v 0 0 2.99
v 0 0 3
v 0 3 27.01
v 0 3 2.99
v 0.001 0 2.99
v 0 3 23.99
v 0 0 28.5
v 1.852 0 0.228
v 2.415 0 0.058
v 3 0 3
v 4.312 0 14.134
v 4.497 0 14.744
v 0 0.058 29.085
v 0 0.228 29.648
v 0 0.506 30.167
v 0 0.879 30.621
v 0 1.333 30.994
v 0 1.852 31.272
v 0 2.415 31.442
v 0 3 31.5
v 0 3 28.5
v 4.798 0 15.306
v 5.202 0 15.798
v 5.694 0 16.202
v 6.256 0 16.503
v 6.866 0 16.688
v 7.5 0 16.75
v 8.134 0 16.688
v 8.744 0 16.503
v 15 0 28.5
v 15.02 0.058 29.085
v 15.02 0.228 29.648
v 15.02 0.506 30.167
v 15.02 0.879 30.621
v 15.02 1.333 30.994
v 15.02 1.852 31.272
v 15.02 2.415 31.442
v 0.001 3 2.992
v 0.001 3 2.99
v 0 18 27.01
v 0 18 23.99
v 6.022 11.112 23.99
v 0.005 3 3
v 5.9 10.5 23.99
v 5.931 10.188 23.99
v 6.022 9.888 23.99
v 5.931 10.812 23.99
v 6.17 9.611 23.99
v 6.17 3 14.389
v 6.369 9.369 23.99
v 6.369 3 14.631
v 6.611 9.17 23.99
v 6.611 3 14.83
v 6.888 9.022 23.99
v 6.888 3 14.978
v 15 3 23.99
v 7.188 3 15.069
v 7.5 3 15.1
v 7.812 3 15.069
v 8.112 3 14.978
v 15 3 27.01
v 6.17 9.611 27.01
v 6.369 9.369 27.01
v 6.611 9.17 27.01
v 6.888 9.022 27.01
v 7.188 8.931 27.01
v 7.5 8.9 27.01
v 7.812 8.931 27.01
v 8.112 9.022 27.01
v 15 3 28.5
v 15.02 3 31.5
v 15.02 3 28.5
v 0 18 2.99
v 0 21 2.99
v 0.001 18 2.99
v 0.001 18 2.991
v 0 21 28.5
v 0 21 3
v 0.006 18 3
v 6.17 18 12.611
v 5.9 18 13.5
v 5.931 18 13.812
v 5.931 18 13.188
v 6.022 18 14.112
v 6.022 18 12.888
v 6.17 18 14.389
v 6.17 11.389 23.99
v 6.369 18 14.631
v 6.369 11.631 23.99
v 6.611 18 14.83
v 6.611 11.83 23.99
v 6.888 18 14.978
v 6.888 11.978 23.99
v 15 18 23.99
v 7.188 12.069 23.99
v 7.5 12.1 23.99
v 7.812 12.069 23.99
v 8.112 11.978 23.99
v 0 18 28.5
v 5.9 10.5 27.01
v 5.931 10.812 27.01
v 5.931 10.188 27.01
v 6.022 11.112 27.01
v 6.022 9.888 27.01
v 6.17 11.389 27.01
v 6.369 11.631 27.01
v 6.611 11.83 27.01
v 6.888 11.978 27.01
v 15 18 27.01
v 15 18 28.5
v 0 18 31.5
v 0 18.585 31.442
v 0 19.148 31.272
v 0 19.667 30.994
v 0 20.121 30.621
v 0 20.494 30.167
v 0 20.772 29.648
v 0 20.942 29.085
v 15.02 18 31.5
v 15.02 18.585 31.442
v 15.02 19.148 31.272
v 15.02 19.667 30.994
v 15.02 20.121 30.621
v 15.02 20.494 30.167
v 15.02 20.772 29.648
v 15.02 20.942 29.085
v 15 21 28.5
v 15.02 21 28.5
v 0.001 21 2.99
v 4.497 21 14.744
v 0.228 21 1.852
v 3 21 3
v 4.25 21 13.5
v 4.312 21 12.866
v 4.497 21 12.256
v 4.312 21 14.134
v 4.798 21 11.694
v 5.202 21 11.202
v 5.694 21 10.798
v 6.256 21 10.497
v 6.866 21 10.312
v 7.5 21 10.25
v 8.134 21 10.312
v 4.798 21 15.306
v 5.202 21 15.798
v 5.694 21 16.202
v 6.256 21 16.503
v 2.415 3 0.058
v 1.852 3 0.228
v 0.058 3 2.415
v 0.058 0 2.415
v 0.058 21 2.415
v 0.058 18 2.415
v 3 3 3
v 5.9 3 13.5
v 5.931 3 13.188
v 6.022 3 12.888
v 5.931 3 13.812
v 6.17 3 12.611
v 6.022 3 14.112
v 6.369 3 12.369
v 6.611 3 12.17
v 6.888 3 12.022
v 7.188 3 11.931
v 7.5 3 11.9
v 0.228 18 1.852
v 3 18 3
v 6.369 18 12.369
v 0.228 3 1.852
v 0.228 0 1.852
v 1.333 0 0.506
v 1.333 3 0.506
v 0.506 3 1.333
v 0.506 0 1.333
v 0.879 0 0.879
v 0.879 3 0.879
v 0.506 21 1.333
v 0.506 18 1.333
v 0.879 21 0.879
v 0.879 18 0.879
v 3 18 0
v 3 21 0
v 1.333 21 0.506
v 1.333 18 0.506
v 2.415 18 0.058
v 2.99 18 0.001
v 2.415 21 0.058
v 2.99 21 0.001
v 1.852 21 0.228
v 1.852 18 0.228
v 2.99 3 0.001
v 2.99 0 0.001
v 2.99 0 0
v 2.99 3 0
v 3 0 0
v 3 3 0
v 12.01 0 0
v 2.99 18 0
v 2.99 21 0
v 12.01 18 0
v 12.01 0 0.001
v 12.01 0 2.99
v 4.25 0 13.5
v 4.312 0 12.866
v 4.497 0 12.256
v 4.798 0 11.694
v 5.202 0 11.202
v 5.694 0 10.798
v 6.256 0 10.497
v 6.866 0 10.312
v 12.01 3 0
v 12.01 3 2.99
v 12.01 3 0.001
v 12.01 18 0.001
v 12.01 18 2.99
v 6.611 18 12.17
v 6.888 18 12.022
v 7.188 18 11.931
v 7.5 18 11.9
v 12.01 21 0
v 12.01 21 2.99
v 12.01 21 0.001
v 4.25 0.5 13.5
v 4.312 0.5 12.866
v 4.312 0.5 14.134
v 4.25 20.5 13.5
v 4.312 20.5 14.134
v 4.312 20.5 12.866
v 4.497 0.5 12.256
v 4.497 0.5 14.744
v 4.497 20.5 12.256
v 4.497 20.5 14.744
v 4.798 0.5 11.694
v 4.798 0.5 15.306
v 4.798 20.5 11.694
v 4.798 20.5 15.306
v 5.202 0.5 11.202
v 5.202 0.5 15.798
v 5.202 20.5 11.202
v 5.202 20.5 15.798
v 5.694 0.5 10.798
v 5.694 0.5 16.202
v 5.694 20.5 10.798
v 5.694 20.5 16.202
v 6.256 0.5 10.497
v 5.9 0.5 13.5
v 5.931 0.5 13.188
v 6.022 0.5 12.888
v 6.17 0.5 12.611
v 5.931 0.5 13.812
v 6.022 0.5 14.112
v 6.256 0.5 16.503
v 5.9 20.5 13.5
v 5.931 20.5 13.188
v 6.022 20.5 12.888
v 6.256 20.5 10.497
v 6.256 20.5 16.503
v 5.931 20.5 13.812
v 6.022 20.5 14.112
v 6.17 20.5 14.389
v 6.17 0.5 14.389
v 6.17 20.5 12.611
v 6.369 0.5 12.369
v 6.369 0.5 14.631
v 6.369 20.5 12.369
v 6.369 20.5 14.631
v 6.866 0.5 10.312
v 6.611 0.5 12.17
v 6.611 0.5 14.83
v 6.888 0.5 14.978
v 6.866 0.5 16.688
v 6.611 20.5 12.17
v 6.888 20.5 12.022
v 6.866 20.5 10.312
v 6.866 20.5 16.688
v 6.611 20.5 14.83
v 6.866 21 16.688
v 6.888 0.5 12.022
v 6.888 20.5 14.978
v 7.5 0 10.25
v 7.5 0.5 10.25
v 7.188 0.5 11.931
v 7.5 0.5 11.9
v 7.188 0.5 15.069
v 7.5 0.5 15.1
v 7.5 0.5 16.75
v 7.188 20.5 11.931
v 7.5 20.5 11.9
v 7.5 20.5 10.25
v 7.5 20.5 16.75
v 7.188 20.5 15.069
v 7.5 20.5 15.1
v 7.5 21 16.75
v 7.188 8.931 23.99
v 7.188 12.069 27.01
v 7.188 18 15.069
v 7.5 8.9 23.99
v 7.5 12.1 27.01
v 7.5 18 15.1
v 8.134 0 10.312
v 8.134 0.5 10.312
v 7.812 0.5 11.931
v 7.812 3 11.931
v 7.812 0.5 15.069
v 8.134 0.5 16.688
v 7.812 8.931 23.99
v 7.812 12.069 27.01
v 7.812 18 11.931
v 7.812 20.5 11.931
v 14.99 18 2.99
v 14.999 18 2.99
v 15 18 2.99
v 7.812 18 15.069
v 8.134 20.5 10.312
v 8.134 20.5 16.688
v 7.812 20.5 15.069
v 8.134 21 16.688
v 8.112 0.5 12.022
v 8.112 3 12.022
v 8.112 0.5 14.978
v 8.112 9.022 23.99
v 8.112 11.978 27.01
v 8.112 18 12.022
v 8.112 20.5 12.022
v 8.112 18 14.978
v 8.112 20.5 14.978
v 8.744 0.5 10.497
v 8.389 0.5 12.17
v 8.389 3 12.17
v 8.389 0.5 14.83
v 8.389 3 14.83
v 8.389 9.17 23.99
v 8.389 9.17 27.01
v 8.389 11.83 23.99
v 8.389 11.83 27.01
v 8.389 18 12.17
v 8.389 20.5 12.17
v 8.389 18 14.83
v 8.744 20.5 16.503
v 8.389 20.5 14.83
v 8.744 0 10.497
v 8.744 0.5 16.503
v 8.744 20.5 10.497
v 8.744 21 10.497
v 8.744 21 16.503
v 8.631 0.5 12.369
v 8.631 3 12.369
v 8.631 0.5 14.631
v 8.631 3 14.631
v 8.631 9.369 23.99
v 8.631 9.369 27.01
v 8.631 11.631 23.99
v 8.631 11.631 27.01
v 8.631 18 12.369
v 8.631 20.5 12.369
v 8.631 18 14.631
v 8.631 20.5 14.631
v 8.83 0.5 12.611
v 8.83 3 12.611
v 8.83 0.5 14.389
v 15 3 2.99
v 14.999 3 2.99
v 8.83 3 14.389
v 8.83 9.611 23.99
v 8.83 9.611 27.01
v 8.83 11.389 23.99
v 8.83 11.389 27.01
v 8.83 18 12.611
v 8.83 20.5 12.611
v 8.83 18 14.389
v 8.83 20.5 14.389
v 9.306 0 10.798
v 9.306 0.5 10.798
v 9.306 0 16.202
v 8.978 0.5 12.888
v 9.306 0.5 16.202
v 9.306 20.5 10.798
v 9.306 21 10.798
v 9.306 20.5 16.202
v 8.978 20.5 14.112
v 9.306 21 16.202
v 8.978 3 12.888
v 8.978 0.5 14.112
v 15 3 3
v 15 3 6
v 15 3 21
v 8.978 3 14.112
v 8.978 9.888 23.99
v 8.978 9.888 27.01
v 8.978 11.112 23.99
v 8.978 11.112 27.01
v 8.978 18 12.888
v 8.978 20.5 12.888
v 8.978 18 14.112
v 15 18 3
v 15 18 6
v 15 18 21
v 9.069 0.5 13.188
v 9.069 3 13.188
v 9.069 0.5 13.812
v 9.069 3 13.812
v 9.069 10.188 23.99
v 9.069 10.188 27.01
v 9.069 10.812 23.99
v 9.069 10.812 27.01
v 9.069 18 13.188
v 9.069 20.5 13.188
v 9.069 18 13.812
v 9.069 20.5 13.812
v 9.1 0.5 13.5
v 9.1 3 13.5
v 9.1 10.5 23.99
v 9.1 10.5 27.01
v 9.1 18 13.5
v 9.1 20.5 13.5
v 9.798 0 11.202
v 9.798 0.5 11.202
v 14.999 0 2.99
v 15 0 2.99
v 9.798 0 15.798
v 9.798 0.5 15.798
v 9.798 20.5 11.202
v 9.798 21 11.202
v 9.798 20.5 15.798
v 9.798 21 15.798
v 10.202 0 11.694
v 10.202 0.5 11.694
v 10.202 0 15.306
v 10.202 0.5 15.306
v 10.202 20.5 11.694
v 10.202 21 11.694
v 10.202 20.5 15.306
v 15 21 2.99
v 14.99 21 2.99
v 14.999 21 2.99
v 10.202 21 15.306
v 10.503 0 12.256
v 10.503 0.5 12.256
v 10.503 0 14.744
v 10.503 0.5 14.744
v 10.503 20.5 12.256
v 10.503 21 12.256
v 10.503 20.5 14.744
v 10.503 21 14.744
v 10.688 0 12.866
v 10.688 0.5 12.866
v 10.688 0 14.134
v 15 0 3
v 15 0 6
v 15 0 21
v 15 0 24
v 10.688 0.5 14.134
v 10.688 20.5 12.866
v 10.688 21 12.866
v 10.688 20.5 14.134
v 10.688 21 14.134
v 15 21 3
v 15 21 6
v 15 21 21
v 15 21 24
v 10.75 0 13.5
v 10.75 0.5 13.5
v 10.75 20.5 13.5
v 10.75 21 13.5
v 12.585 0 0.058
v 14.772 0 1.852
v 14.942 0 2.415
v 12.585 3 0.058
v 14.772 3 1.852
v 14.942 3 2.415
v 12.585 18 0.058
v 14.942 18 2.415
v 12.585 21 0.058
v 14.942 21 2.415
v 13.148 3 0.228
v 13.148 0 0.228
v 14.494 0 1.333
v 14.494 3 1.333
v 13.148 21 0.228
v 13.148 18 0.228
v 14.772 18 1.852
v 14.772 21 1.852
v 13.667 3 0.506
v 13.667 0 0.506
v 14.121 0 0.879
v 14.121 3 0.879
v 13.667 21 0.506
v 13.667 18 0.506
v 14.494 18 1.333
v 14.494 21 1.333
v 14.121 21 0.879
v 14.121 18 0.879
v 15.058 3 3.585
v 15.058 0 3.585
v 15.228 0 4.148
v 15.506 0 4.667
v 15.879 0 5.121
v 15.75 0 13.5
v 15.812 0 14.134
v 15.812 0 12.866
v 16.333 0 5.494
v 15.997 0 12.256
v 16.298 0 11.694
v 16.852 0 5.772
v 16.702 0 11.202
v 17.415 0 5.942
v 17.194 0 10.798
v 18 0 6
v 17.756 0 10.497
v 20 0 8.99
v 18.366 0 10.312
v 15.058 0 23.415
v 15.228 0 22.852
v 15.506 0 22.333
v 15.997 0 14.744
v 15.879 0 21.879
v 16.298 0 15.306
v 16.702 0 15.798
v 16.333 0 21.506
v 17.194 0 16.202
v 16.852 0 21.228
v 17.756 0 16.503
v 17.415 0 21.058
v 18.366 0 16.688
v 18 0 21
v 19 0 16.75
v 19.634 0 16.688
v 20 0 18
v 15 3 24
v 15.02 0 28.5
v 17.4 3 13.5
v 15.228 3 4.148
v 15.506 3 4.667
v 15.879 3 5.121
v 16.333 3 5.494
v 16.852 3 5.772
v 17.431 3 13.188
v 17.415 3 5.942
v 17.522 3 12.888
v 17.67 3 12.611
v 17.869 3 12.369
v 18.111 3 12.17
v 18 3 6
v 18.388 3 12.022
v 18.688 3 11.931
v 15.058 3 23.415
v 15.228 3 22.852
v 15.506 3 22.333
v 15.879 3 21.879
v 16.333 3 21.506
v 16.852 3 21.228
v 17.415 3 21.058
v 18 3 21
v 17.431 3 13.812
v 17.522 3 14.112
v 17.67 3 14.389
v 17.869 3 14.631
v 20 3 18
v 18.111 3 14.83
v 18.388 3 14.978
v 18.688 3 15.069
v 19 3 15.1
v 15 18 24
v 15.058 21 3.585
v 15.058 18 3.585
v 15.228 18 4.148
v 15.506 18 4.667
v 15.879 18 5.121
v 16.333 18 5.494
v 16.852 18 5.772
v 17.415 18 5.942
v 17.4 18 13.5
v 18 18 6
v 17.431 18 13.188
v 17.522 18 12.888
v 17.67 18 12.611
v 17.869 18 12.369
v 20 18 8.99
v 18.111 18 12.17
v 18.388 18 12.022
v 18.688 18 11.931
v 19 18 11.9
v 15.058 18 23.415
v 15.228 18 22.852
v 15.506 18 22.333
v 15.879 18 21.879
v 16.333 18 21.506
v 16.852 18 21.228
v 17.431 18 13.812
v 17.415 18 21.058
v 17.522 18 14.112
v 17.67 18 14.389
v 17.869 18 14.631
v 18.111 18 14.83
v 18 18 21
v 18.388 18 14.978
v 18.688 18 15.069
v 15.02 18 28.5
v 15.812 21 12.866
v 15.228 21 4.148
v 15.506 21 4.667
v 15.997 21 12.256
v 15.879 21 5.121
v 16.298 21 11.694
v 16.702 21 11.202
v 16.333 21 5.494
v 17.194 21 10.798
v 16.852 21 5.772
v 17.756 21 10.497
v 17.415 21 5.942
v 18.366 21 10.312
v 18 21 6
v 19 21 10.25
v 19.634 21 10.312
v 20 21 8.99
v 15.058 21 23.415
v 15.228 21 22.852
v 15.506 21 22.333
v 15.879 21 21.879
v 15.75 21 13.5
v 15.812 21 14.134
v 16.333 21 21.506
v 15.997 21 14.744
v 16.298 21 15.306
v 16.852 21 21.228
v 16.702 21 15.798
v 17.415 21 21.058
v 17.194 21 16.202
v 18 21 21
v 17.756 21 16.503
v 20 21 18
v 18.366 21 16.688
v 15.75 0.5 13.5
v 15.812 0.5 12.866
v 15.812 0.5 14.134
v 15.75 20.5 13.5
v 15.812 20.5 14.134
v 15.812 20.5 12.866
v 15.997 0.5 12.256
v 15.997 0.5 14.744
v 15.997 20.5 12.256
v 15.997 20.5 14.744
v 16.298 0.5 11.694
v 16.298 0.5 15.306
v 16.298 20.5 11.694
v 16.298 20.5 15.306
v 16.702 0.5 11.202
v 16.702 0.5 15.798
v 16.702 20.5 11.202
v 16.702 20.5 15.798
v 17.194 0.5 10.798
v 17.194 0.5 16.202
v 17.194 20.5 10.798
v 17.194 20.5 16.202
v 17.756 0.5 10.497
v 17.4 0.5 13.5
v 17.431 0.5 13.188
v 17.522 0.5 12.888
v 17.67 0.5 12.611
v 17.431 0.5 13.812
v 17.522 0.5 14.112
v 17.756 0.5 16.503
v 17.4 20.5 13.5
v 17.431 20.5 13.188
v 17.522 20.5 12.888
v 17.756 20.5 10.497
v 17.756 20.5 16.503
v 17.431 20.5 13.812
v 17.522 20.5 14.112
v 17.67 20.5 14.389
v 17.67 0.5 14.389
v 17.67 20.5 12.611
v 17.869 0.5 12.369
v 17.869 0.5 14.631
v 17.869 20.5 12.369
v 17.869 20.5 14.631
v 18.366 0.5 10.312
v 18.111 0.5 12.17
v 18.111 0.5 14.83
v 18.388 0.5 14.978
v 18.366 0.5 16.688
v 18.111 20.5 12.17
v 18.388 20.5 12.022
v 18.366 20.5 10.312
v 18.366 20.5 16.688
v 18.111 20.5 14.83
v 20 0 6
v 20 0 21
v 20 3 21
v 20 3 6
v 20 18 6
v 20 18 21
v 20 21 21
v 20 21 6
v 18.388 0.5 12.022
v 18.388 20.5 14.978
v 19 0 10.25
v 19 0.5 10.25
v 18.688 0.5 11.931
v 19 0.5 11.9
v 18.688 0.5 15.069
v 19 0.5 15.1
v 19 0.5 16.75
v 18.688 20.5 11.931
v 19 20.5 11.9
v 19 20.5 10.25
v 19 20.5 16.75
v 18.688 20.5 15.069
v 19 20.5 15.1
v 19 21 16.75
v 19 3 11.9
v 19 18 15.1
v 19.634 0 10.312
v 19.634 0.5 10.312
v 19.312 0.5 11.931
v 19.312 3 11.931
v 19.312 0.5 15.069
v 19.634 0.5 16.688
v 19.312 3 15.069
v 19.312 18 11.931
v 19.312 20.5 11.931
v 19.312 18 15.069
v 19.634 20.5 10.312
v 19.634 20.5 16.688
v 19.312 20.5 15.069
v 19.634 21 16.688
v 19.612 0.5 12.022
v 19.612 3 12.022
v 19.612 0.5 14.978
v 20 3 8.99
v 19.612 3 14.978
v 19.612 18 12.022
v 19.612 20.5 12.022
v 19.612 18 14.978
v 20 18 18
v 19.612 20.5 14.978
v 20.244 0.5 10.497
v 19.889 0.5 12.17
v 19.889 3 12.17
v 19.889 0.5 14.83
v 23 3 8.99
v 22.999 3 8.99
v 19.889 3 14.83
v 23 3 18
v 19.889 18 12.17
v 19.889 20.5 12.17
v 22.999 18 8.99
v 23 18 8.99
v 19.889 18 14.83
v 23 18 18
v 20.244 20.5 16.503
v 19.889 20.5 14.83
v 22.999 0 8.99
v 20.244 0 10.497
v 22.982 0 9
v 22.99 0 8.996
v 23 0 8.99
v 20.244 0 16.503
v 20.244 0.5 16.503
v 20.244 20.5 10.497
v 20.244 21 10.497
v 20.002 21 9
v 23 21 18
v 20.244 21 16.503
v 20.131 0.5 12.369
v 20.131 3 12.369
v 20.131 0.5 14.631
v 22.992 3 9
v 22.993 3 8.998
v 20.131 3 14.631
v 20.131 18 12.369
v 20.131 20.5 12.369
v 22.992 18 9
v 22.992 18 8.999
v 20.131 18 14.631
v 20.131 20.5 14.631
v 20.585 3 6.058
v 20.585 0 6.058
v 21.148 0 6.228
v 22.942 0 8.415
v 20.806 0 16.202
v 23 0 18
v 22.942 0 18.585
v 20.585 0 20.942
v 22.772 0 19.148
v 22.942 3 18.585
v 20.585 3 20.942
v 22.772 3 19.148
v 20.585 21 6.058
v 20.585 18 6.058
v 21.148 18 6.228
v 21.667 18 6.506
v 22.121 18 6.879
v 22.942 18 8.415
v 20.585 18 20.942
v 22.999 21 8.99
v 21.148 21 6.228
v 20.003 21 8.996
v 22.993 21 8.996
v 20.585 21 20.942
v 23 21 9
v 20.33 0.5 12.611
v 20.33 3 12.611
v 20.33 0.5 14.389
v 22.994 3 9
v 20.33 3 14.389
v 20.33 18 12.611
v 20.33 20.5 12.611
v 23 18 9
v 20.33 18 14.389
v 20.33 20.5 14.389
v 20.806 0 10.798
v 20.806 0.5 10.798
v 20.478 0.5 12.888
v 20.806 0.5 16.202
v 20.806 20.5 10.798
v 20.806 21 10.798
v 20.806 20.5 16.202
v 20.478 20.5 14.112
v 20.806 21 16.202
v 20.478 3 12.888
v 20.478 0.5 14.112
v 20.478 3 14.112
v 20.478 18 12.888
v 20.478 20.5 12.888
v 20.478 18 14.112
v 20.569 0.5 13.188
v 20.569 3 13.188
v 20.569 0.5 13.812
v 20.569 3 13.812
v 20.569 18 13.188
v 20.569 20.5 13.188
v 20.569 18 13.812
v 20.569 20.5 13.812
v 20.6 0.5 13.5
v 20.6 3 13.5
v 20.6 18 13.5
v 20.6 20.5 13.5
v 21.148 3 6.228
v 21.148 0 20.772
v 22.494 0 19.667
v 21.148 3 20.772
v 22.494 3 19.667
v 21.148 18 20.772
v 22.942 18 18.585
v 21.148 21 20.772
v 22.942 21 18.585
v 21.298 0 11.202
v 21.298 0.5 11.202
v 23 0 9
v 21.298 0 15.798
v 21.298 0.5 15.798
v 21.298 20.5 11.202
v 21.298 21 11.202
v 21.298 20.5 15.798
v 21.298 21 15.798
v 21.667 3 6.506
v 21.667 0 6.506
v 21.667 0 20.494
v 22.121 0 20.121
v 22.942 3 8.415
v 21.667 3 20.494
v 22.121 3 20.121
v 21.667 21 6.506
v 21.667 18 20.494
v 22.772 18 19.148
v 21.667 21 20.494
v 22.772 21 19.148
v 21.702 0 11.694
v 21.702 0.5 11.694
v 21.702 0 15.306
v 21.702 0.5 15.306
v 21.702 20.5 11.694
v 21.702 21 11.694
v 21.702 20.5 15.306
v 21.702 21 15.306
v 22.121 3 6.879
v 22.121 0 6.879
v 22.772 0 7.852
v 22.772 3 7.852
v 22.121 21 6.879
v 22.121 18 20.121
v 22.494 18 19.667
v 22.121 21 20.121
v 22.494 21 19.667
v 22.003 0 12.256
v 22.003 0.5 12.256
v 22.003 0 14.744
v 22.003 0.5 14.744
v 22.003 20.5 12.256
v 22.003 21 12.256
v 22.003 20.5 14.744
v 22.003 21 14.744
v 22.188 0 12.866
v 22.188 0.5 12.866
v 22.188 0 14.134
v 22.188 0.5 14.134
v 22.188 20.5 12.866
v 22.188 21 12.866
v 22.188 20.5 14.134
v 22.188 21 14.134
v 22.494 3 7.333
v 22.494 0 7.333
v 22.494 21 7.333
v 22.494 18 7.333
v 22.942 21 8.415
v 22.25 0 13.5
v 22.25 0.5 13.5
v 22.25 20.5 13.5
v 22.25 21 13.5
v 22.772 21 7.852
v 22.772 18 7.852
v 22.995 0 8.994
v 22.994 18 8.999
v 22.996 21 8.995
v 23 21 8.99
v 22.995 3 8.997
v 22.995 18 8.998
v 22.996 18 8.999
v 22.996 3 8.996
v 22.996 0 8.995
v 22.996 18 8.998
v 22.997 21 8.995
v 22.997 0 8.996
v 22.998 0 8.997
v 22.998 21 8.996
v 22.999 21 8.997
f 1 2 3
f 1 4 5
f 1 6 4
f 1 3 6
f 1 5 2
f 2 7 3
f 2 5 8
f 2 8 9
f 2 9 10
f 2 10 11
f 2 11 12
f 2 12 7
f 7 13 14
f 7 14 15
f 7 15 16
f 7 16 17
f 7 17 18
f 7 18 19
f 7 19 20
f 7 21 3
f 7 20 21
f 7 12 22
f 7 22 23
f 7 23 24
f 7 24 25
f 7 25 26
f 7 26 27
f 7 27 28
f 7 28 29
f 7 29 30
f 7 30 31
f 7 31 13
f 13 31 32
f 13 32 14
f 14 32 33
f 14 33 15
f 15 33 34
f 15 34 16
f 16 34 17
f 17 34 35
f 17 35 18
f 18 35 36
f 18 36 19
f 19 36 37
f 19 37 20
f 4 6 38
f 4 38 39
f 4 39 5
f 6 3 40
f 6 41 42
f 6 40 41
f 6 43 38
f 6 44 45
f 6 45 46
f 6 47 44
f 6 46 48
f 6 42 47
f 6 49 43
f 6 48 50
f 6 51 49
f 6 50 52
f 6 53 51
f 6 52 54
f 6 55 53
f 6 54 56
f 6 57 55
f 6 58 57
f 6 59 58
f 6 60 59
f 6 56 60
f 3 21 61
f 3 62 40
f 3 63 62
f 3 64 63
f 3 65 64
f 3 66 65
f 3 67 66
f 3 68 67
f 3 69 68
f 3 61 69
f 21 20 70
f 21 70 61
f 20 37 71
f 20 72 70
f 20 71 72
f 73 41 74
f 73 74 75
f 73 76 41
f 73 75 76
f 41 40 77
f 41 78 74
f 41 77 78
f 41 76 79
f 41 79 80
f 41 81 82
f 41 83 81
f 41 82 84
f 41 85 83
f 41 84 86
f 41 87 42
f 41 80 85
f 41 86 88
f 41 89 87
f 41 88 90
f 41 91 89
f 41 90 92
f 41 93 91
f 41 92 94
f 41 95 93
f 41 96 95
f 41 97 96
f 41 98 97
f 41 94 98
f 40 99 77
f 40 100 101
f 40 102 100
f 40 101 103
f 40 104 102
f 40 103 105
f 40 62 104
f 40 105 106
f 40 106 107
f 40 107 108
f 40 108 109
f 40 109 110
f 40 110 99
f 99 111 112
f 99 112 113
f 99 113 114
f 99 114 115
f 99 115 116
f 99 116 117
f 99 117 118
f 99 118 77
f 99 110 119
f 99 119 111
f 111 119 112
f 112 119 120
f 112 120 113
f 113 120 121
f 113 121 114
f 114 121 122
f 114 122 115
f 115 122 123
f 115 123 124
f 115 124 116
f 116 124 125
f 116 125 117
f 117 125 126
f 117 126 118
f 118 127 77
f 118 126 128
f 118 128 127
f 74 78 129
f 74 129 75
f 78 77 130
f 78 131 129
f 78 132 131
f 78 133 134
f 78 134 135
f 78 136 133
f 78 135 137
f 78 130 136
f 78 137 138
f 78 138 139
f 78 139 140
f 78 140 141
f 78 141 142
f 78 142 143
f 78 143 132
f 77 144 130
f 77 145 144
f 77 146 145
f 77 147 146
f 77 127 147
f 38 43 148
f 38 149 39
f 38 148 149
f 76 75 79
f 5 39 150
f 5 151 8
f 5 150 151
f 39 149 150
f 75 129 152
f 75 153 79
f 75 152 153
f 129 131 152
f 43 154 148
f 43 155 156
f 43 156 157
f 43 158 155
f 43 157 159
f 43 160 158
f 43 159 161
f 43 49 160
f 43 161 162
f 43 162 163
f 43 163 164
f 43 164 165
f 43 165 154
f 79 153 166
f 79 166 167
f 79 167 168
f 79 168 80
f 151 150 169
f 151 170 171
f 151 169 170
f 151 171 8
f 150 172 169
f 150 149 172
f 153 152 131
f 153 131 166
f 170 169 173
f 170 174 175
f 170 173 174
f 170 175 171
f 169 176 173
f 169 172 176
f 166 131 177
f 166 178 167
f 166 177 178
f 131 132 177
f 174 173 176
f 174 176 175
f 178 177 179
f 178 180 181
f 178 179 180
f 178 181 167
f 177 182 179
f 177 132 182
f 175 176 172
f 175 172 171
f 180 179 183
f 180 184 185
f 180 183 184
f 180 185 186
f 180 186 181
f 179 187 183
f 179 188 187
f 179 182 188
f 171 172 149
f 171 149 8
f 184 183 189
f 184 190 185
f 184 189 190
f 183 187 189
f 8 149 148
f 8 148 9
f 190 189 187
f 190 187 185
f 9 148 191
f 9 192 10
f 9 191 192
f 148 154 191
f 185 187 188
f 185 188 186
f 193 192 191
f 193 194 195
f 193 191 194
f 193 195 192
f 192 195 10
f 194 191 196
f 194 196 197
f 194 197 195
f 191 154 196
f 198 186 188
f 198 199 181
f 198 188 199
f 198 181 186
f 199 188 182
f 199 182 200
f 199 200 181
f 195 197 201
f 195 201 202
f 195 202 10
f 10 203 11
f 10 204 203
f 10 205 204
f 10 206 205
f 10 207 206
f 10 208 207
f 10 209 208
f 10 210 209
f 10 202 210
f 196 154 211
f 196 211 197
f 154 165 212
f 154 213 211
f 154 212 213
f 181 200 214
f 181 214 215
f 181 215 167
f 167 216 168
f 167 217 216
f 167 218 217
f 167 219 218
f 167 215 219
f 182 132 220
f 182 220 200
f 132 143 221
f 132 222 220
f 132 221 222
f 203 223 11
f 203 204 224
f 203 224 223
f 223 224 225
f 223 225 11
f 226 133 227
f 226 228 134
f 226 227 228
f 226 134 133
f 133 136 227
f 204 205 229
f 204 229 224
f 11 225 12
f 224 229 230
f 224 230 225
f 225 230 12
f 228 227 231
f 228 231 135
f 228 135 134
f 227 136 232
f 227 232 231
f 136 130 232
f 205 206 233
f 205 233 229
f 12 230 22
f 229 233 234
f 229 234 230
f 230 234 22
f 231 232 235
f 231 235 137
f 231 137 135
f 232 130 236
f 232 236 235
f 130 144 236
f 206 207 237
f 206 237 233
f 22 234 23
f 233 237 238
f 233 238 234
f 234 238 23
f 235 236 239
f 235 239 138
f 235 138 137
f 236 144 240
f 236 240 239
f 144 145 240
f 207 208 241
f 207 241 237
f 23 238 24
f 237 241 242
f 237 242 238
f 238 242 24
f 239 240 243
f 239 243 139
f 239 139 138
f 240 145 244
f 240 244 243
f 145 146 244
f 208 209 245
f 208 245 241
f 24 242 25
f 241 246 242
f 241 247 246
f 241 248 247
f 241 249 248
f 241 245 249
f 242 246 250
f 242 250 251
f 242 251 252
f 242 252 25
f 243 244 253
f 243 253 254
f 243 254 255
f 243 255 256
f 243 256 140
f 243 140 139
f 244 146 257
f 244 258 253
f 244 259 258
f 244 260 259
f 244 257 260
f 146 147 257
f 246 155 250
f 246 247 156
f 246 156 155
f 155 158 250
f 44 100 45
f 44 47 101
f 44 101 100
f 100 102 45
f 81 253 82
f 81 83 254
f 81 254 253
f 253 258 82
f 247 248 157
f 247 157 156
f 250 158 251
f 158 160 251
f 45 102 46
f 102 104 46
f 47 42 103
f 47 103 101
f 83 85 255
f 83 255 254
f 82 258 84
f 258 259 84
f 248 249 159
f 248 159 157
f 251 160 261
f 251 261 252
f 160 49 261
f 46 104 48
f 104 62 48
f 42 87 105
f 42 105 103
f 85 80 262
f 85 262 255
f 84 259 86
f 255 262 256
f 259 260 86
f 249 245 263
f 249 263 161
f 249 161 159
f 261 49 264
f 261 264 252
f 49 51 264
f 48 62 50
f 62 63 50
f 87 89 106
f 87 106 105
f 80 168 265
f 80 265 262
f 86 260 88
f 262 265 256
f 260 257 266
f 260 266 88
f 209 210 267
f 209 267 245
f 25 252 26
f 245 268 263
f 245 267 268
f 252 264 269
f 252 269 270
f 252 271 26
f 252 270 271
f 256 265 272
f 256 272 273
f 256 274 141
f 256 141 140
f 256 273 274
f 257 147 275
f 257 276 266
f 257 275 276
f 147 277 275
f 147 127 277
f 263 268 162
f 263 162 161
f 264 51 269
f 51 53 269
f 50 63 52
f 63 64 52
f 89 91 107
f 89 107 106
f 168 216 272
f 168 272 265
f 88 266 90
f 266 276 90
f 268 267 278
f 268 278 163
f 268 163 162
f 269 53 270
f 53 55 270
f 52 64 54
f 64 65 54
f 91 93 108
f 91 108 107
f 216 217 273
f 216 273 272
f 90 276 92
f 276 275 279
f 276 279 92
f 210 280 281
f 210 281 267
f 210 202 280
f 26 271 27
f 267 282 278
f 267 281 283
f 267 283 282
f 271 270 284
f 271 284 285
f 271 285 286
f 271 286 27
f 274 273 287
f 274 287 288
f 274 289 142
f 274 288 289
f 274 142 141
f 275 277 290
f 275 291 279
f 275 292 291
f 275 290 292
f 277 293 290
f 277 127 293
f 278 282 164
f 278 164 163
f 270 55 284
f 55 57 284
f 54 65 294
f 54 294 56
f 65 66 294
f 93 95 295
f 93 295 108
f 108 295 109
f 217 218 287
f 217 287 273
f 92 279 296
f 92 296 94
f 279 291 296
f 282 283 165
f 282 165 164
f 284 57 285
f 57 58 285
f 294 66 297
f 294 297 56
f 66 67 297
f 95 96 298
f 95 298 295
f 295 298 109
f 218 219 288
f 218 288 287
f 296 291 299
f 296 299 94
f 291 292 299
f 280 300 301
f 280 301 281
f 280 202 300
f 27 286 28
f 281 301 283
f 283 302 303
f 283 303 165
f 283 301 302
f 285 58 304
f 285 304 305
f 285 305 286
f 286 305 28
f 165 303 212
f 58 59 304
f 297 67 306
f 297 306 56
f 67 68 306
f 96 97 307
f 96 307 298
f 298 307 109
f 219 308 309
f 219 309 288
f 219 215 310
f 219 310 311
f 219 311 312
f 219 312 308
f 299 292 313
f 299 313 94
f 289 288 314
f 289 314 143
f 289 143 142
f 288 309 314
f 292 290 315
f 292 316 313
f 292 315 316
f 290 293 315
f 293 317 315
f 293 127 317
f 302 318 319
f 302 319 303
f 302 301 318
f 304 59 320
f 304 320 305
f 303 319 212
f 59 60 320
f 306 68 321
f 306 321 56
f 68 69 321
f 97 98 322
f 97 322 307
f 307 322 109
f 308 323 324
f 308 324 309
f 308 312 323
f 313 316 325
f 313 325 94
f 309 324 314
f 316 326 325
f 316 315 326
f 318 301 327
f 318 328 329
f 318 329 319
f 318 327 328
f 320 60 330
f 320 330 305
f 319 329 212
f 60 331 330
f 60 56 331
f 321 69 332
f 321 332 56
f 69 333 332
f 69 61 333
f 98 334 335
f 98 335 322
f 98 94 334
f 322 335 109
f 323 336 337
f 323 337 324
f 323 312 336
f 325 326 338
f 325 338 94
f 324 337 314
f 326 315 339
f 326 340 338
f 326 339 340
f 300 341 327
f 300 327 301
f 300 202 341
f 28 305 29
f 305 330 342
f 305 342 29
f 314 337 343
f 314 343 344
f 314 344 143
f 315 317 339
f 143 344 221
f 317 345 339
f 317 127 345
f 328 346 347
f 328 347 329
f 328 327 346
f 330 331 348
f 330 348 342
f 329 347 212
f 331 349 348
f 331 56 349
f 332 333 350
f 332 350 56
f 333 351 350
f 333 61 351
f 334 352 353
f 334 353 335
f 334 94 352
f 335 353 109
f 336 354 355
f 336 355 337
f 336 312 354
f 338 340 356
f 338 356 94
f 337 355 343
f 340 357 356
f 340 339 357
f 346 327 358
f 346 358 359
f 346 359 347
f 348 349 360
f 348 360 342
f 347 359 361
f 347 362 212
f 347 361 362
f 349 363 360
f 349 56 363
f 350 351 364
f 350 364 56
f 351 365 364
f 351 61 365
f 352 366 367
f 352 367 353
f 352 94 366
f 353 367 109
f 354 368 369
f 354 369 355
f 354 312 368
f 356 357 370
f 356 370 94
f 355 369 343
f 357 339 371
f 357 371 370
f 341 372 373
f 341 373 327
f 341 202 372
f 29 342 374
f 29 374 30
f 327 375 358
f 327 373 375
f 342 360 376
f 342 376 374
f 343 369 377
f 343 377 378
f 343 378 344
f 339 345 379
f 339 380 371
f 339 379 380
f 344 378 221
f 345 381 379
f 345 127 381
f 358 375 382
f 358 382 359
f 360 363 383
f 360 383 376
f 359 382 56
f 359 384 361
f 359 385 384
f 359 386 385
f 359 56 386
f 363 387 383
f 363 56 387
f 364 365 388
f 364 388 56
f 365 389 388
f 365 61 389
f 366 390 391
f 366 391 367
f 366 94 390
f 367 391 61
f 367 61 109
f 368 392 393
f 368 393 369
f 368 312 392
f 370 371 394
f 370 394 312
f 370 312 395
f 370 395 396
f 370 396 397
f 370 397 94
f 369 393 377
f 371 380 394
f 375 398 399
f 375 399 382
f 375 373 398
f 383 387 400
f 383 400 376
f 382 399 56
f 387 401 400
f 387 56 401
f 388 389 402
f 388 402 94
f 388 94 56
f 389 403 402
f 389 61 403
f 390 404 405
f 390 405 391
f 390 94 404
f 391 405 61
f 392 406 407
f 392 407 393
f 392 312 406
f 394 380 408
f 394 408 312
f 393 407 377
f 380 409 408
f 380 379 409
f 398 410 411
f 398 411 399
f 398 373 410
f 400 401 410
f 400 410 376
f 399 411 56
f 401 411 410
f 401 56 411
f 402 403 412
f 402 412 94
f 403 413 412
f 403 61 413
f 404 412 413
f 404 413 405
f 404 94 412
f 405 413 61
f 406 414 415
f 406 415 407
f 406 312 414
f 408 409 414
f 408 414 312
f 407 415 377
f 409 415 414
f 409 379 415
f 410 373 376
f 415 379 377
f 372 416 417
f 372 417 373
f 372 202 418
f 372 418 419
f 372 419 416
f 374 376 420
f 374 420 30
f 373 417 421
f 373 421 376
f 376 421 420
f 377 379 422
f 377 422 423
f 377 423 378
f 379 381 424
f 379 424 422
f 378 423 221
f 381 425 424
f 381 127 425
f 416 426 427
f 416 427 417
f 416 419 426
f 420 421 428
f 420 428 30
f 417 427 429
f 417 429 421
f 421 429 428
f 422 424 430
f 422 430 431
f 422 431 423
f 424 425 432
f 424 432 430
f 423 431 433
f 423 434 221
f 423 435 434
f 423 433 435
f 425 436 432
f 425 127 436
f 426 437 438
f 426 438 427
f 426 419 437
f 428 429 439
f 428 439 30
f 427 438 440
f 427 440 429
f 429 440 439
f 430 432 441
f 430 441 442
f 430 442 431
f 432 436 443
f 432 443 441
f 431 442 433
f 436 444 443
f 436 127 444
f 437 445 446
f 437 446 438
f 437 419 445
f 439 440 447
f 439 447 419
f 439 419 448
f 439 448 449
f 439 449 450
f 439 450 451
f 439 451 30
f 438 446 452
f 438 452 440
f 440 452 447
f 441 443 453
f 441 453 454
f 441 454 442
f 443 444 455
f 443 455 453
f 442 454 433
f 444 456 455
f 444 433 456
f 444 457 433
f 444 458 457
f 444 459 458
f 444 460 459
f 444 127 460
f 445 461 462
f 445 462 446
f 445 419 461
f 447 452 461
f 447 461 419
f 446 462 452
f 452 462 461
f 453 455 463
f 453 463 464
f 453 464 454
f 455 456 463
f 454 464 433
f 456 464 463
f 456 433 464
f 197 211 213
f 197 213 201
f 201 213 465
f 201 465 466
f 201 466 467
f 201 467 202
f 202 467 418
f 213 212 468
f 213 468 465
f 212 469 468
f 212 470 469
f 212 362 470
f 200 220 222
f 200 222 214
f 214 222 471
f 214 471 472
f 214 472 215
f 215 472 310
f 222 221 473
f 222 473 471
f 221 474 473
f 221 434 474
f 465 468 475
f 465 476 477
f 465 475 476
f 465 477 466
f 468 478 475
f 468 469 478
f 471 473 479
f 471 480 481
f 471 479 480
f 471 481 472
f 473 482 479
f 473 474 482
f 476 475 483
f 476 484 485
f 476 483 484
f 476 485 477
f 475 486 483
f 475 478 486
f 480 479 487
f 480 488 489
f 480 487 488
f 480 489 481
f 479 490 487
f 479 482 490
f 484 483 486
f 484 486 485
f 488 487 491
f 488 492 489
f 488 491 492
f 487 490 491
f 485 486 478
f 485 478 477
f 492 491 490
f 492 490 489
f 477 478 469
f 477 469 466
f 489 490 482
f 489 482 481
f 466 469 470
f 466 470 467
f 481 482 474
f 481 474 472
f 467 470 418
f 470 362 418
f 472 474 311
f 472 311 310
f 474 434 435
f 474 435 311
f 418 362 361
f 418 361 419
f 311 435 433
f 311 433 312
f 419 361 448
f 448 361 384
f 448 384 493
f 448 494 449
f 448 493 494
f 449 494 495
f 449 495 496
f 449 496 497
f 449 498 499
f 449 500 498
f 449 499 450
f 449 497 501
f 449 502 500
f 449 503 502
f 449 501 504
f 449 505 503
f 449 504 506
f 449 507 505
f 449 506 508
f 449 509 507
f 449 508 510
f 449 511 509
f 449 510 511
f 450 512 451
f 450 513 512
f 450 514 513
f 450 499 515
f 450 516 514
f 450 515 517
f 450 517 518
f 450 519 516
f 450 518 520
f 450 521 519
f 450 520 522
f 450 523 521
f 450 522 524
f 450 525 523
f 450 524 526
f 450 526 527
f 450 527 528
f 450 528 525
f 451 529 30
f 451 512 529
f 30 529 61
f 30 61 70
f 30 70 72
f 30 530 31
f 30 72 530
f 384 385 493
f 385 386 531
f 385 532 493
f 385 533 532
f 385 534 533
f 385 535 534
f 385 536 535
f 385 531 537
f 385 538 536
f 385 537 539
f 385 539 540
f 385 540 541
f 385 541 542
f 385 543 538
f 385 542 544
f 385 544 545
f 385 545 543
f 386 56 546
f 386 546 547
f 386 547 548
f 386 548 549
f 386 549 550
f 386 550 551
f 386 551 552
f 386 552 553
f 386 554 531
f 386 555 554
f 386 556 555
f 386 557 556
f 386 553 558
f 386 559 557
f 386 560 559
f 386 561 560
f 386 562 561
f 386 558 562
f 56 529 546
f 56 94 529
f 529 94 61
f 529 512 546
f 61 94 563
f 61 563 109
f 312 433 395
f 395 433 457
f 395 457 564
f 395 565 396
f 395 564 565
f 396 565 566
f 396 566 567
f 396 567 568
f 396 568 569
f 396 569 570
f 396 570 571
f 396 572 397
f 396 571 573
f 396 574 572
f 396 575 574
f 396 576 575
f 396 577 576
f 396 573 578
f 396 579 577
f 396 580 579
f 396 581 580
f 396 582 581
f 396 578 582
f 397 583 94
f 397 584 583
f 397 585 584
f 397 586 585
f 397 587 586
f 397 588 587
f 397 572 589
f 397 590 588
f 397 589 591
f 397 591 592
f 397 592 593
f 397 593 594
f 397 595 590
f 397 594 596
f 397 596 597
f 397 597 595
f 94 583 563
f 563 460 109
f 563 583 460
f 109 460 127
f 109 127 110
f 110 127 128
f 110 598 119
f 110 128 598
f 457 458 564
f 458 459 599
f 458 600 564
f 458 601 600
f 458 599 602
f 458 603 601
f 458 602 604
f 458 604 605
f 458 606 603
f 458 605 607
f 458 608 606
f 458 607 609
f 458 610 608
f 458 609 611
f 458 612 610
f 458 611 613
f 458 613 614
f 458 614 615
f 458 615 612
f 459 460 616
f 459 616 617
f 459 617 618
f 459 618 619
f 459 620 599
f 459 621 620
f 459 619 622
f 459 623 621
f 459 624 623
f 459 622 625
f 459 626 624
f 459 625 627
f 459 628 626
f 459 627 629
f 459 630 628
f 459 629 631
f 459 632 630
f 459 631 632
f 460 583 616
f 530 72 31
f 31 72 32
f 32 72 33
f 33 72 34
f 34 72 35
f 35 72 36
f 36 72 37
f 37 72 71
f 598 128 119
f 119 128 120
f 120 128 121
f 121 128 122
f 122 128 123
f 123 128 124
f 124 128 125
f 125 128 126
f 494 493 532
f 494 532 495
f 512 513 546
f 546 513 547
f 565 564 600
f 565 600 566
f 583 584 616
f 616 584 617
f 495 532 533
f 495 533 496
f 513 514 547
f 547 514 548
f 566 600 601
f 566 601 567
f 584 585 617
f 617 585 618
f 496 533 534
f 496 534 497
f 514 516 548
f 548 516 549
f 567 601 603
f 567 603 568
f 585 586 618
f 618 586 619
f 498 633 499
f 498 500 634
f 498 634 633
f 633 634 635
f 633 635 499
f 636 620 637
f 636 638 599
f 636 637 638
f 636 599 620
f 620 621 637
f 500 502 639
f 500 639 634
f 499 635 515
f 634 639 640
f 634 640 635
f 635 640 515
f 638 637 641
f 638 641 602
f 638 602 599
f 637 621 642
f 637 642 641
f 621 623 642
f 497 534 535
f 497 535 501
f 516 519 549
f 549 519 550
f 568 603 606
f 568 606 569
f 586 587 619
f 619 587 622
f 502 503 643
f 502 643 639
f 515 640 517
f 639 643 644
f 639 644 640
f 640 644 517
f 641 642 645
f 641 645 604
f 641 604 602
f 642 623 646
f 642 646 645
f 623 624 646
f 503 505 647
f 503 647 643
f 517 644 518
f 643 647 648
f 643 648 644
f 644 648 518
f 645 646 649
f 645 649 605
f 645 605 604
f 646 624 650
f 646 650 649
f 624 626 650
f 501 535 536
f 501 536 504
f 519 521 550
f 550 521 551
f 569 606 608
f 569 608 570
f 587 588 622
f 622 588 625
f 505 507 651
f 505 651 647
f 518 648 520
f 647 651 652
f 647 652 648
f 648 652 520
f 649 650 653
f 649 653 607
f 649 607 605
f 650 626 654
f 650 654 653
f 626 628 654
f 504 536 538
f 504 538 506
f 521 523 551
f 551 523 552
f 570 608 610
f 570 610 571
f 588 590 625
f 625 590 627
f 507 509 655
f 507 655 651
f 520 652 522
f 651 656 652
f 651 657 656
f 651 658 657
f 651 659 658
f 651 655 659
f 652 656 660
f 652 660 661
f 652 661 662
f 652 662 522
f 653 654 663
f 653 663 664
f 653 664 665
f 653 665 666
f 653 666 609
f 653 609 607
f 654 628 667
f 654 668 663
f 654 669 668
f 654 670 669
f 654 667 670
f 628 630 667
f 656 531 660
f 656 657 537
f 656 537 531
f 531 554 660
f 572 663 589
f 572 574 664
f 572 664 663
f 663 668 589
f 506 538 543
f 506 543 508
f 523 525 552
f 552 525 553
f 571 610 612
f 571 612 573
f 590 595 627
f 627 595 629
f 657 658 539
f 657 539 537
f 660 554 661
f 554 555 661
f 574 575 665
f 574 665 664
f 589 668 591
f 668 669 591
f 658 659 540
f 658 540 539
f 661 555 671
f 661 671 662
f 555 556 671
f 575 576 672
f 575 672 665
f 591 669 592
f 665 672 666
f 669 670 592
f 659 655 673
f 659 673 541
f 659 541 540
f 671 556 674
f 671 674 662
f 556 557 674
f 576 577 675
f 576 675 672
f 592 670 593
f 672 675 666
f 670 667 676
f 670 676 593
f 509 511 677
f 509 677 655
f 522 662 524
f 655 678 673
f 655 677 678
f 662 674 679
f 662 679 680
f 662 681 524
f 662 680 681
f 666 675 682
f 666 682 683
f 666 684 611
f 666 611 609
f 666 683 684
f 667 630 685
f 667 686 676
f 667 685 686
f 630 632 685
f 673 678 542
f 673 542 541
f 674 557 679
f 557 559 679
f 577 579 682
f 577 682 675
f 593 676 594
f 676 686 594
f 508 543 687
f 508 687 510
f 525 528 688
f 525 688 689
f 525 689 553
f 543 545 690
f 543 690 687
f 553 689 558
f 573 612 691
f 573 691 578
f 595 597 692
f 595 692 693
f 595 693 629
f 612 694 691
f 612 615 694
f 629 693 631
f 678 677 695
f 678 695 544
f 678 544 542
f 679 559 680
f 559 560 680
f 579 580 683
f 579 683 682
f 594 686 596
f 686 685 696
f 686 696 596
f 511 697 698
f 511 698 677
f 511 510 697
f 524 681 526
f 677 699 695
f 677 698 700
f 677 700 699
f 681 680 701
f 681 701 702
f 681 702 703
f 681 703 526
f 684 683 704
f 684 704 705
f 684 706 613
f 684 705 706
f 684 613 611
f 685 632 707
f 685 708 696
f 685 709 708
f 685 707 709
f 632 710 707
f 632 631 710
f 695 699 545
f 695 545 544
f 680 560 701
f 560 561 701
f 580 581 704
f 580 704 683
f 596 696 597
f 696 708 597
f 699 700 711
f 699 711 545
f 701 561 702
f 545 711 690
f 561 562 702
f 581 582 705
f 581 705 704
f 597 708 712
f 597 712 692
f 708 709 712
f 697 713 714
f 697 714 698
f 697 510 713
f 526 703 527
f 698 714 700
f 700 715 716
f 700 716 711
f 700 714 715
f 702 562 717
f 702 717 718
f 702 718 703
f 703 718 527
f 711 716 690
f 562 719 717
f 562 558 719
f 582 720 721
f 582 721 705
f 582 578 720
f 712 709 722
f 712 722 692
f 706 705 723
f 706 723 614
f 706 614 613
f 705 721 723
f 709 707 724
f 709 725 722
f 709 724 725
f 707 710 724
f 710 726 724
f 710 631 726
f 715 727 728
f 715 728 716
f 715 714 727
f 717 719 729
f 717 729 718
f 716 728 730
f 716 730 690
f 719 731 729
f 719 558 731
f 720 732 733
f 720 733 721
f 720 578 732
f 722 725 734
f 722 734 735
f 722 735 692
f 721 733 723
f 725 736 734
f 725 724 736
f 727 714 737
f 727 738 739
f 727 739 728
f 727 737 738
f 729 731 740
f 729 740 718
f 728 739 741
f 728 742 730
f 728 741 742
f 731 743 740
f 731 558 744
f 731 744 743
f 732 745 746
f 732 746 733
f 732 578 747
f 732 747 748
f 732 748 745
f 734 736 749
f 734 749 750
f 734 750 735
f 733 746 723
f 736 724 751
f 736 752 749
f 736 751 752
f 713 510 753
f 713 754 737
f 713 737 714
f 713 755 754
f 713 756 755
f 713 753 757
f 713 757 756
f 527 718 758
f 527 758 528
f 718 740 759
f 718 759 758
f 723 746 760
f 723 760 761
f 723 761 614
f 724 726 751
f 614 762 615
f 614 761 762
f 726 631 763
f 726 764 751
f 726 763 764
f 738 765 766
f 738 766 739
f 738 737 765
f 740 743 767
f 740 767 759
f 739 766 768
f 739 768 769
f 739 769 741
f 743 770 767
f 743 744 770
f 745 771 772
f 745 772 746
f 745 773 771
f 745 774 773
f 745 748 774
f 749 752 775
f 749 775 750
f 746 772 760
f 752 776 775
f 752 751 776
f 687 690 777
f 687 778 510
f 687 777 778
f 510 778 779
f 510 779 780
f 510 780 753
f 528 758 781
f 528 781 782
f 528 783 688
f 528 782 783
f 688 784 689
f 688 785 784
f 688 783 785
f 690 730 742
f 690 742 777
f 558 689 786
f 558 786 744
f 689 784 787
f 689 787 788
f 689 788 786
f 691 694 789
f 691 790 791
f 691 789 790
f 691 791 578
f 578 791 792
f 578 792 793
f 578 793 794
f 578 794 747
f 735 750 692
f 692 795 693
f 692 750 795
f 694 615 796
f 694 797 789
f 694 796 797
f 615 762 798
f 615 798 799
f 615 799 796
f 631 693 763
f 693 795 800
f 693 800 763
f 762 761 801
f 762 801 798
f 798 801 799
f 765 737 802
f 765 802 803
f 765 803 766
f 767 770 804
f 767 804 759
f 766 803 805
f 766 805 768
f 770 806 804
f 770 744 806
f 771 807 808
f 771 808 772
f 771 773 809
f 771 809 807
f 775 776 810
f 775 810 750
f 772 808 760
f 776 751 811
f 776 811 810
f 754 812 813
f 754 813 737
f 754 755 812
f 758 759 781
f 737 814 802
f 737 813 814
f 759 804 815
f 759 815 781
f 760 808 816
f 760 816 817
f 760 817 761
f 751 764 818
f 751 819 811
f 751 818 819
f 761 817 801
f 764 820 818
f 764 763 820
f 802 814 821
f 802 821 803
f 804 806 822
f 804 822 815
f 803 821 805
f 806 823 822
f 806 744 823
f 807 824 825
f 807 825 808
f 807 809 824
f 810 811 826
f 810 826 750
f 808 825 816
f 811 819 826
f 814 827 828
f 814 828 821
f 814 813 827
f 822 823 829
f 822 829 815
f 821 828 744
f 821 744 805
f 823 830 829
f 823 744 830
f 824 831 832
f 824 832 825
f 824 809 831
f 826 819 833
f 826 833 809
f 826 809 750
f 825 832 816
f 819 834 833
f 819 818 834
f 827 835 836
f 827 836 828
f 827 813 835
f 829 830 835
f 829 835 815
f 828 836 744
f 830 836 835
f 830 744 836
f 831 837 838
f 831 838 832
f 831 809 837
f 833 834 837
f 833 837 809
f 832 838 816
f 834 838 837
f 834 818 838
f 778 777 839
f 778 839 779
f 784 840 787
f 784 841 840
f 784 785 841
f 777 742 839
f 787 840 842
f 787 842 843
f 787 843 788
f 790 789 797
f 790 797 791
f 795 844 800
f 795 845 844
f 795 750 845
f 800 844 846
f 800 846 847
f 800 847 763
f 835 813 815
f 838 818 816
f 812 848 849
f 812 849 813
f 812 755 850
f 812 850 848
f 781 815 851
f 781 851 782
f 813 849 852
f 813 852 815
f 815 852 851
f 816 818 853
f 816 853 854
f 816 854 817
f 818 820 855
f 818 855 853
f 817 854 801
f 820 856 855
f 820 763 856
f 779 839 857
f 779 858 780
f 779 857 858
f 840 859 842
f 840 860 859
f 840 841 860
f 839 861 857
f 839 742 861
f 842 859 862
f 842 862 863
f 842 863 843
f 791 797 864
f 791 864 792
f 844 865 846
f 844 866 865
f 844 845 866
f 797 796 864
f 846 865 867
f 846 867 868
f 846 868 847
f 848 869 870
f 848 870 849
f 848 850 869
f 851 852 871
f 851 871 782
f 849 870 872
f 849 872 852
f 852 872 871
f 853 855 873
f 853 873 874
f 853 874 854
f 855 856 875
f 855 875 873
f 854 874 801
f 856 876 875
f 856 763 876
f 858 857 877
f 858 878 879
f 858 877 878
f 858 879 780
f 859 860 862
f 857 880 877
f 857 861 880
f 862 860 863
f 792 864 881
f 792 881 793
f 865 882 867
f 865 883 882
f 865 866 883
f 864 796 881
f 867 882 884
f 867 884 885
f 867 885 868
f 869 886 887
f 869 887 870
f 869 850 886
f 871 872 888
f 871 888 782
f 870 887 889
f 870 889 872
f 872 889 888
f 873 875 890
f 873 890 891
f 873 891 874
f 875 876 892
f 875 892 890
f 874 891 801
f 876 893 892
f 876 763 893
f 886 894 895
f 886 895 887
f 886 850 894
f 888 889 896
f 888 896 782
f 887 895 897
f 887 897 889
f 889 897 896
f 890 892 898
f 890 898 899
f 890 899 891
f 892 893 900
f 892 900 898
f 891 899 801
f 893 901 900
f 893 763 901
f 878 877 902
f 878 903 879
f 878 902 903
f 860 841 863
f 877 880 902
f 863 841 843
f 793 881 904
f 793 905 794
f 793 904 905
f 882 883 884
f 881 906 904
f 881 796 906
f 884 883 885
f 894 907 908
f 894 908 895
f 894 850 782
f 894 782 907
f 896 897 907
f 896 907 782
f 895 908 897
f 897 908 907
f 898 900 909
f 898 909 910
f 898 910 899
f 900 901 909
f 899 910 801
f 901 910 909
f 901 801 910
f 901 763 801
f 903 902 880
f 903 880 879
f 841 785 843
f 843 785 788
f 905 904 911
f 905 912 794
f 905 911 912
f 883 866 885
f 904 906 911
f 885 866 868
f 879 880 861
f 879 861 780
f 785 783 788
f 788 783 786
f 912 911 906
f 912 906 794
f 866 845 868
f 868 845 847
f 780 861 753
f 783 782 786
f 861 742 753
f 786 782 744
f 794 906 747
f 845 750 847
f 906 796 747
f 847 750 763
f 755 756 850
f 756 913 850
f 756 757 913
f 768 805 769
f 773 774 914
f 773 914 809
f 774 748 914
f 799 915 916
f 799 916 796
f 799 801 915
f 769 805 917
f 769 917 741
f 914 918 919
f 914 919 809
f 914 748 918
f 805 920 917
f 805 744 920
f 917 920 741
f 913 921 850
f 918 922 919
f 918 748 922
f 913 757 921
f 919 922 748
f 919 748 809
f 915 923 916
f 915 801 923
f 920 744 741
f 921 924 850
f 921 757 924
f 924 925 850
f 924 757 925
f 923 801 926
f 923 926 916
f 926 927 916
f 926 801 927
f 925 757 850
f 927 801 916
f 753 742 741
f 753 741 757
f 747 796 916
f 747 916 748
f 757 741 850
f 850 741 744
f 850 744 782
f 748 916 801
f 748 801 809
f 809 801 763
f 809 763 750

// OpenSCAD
// file: lib/utils.scad
// Quarter circle at center; quadrant 0=+x+y, 1=-x+y, 2=-x-y, 3=+x-y
module quarter_round(center, quadrant, corner_radius) {
    translate(center)
        intersection() {
            circle(r = corner_radius, $fn = 32);
            if (quadrant == 0) square([corner_radius, corner_radius]);
            if (quadrant == 1) translate([-corner_radius, 0]) square([corner_radius, corner_radius]);
            if (quadrant == 2) translate([-corner_radius, -corner_radius]) square([corner_radius, corner_radius]);
            if (quadrant == 3) translate([0, -corner_radius]) square([corner_radius, corner_radius]);
        }
}
// main file
use <lib/utils.scad>

extrusion_size = 15;

hammer_head_height = 6;
hammer_head_height_offset = 4.5;
hammer_top_extrusion_offset = 3;

hammer_joint_wall = 3;
hammer_joint_bottom_offset = 6;
hammer_joint_right_offset = 8;
hammer_joint_corner_radius = 3;

m3_hole_radius = 3.2 / 2;
m3_groove_diameter = 6.5;
m3_groove_depth = 0.5;

top_z = hammer_joint_bottom_offset + extrusion_size + hammer_top_extrusion_offset + hammer_joint_wall + hammer_head_height_offset;
top_edge_y_max = extrusion_size + hammer_joint_wall * 2;

module top_edge_fillet(r, length, quadrant_y) {
    intersection() {
        rotate([0, 90, 0])
            cylinder(h = length + 0.02, r = r, center = false, $fn = 32);
        if (quadrant_y < 0) {
            translate([0, -100, 0]) cube([length + 0.02, 100, 100]);
        } else {
            cube([length + 0.02, 100, 100]);
        }
    }
}

module hammer_joint() {
    union() {
        // Main piece
        difference() {
            cube([
                extrusion_size,
                extrusion_size + hammer_joint_wall * 2,
                top_z - hammer_joint_wall
            ]);

            // Extrusion-sized hole: wall on both sides, wall + hammer_head_height_offset on top
            translate([-0.01, hammer_joint_wall, -0.01]) {
                cube([extrusion_size + 0.02, extrusion_size, hammer_joint_bottom_offset + extrusion_size + hammer_top_extrusion_offset]);
            }
            translate([-0.01, hammer_joint_wall, hammer_joint_bottom_offset + hammer_top_extrusion_offset + hammer_joint_wall + extrusion_size + 0.01]) {
                cube([extrusion_size + 0.02, extrusion_size, hammer_head_height_offset]);
            }

            // Cut bottom corners
            r = hammer_joint_corner_radius;
            translate([-0.01, -0.01, -0.01])
                cube([r, hammer_joint_wall + 0.02, r]);
            translate([extrusion_size - r + 0.01, -0.01, -0.01])
                cube([r, hammer_joint_wall + 0.02, r]);
            translate([-0.01, top_edge_y_max - r - 0.01, -0.01])
                cube([r, hammer_joint_wall + 0.02, r]);
            translate([extrusion_size - r + 0.01, top_edge_y_max - r - 0.01, -0.01])
                cube([r, hammer_joint_wall + 0.02, r]);

            // M3 hole at top center
            translate([extrusion_size / 2, top_edge_y_max / 2, -0.01])
                cylinder(h = top_z + 0.02, r = m3_hole_radius, $fn = 32);

            // M3 holes on each side face
            side_hole_z = hammer_joint_bottom_offset + extrusion_size / 2;
            translate([extrusion_size / 2, -0.01, side_hole_z]) {
                rotate([-90, 0, 0]) {
                    cylinder(h = hammer_joint_wall + 0.02, r = m3_hole_radius, $fn = 32);
                    cylinder(h = m3_groove_depth + 0.01, r = m3_groove_diameter / 2, $fn = 32);
                }
            }
            translate([extrusion_size / 2, top_edge_y_max + 0.01, side_hole_z]) {
                rotate([90, 0, 0]) {
                    cylinder(h = hammer_joint_wall + 0.02, r = m3_hole_radius, $fn = 32);
                    cylinder(h = m3_groove_depth + 0.01, r = m3_groove_diameter / 2, $fn = 32);
                }
            }
        }
        // Side piece
        translate([extrusion_size, 0, hammer_joint_bottom_offset]) {
            difference() {
                cube([
                    hammer_joint_right_offset,
                    extrusion_size + hammer_joint_wall * 2,
                    extrusion_size
                ]);
                translate([-0.01, hammer_joint_wall, -0.01]) {
                    cube([hammer_joint_right_offset + 0.02, extrusion_size, extrusion_size + 0.02]);
                }
                // Cut side corners
                r = hammer_joint_corner_radius;
                translate([hammer_joint_right_offset - r, -0.01, -0.01])
                    cube([r + 0.02, r + 0.02, r]);
                translate([hammer_joint_right_offset - r, top_edge_y_max - r - 0.01, -0.01])
                    cube([r + 0.02, r + 0.02, r]);
                translate([hammer_joint_right_offset - r, -0.01, extrusion_size - r])
                    cube([r + 0.02, r + 0.02, r + 0.01]);
                translate([hammer_joint_right_offset - r, top_edge_y_max - r - 0.01, extrusion_size - r])
                    cube([r + 0.02, r + 0.02, r + 0.01]);

                // M3 hole on each side face
                translate([hammer_joint_right_offset / 2, -0.01, extrusion_size / 2]) {
                    rotate([-90, 0, 0]) {
                        cylinder(h = hammer_joint_wall + 0.02, r = m3_hole_radius, $fn = 32);
                        cylinder(h = m3_groove_depth + 0.01, r = m3_groove_diameter / 2, $fn = 32);
                    }
                }
                translate([hammer_joint_right_offset / 2, top_edge_y_max + 0.01, extrusion_size / 2]) {
                    rotate([90, 0, 0]) {
                        cylinder(h = hammer_joint_wall + 0.02, r = m3_hole_radius, $fn = 32);
                        cylinder(h = m3_groove_depth + 0.01, r = m3_groove_diameter / 2, $fn = 32);
                    }
                }
            }
            // Round side corners
            r = hammer_joint_corner_radius;
            translate([hammer_joint_right_offset - r, r, r])
                rotate([90, 90, 0])
                    linear_extrude(r)
                        quarter_round([0, 0], 0, r);
            translate([hammer_joint_right_offset - r, top_edge_y_max, r])
                rotate([90, 0, 0])
                    linear_extrude(r)
                        quarter_round([0, 0], 3, r);
            translate([hammer_joint_right_offset - r, r, extrusion_size - r])
                rotate([90, 90, 0])
                    linear_extrude(r)
                        quarter_round([0, 0], 1, r);
            translate([hammer_joint_right_offset - r, top_edge_y_max, extrusion_size - r])
                rotate([90, 180, 0])
                    linear_extrude(r)
                        quarter_round([0, 0], 2, r);
        }
        // Round off the two outer top edges (around the hammer head)
        translate([0, hammer_joint_wall, top_z - hammer_joint_wall]) {
            top_edge_fillet(hammer_joint_wall, extrusion_size, -1);
        }
        translate([0, top_edge_y_max - hammer_joint_wall, top_z - hammer_joint_wall]) {
            top_edge_fillet(hammer_joint_wall, extrusion_size, 1);
        }
        // Round all 4 corners on the bottom
        r = hammer_joint_corner_radius;
        rotate([-90, 90, 0])
            linear_extrude(hammer_joint_corner_radius)
                quarter_round([-r, -r], 0, r);
        translate([extrusion_size, 0, 0])
            rotate([-90, -90, 0])
                linear_extrude(hammer_joint_corner_radius)
                    quarter_round([r, -r], 1, r);
        translate([0, top_edge_y_max, 0])
            rotate([90, 90, 0])
                linear_extrude(hammer_joint_corner_radius)
                    quarter_round([-r, r], 3, r);
        translate([extrusion_size, top_edge_y_max, 0])
            rotate([90, -90, 0])
                linear_extrude(hammer_joint_corner_radius)
                    quarter_round([r, r], 2, r);
        // Inner corner fillets
        translate([extrusion_size + r, r, hammer_joint_bottom_offset])
            rotate([90, 180, 0])
                linear_extrude(r)
                    difference() {
                        square([r, r]);
                        translate([0, r]) circle(r = r, $fn = 32);
                    }
        translate([extrusion_size, top_edge_y_max - r, hammer_joint_bottom_offset])
            rotate([-90, 0, 0])
                linear_extrude(r)
                    difference() {
                        square([r, r]);
                        translate([r, r]) circle(r = r, $fn = 32);
                    }
        translate([extrusion_size + r, r, hammer_joint_bottom_offset + extrusion_size])
            rotate([90, -90, 0])
                linear_extrude(r)
                    difference() {
                        square([r, r]);
                        translate([r, 0]) circle(r = r, $fn = 32);
                    }
        translate([extrusion_size, top_edge_y_max - r, hammer_joint_bottom_offset + extrusion_size + r])
            rotate([-90, 0, 0])
                linear_extrude(r)
                    difference() {
                        square([r, r]);
                        translate([r, 0]) circle(r = r, $fn = 32);
                    }
    }
}

hammer_joint();
